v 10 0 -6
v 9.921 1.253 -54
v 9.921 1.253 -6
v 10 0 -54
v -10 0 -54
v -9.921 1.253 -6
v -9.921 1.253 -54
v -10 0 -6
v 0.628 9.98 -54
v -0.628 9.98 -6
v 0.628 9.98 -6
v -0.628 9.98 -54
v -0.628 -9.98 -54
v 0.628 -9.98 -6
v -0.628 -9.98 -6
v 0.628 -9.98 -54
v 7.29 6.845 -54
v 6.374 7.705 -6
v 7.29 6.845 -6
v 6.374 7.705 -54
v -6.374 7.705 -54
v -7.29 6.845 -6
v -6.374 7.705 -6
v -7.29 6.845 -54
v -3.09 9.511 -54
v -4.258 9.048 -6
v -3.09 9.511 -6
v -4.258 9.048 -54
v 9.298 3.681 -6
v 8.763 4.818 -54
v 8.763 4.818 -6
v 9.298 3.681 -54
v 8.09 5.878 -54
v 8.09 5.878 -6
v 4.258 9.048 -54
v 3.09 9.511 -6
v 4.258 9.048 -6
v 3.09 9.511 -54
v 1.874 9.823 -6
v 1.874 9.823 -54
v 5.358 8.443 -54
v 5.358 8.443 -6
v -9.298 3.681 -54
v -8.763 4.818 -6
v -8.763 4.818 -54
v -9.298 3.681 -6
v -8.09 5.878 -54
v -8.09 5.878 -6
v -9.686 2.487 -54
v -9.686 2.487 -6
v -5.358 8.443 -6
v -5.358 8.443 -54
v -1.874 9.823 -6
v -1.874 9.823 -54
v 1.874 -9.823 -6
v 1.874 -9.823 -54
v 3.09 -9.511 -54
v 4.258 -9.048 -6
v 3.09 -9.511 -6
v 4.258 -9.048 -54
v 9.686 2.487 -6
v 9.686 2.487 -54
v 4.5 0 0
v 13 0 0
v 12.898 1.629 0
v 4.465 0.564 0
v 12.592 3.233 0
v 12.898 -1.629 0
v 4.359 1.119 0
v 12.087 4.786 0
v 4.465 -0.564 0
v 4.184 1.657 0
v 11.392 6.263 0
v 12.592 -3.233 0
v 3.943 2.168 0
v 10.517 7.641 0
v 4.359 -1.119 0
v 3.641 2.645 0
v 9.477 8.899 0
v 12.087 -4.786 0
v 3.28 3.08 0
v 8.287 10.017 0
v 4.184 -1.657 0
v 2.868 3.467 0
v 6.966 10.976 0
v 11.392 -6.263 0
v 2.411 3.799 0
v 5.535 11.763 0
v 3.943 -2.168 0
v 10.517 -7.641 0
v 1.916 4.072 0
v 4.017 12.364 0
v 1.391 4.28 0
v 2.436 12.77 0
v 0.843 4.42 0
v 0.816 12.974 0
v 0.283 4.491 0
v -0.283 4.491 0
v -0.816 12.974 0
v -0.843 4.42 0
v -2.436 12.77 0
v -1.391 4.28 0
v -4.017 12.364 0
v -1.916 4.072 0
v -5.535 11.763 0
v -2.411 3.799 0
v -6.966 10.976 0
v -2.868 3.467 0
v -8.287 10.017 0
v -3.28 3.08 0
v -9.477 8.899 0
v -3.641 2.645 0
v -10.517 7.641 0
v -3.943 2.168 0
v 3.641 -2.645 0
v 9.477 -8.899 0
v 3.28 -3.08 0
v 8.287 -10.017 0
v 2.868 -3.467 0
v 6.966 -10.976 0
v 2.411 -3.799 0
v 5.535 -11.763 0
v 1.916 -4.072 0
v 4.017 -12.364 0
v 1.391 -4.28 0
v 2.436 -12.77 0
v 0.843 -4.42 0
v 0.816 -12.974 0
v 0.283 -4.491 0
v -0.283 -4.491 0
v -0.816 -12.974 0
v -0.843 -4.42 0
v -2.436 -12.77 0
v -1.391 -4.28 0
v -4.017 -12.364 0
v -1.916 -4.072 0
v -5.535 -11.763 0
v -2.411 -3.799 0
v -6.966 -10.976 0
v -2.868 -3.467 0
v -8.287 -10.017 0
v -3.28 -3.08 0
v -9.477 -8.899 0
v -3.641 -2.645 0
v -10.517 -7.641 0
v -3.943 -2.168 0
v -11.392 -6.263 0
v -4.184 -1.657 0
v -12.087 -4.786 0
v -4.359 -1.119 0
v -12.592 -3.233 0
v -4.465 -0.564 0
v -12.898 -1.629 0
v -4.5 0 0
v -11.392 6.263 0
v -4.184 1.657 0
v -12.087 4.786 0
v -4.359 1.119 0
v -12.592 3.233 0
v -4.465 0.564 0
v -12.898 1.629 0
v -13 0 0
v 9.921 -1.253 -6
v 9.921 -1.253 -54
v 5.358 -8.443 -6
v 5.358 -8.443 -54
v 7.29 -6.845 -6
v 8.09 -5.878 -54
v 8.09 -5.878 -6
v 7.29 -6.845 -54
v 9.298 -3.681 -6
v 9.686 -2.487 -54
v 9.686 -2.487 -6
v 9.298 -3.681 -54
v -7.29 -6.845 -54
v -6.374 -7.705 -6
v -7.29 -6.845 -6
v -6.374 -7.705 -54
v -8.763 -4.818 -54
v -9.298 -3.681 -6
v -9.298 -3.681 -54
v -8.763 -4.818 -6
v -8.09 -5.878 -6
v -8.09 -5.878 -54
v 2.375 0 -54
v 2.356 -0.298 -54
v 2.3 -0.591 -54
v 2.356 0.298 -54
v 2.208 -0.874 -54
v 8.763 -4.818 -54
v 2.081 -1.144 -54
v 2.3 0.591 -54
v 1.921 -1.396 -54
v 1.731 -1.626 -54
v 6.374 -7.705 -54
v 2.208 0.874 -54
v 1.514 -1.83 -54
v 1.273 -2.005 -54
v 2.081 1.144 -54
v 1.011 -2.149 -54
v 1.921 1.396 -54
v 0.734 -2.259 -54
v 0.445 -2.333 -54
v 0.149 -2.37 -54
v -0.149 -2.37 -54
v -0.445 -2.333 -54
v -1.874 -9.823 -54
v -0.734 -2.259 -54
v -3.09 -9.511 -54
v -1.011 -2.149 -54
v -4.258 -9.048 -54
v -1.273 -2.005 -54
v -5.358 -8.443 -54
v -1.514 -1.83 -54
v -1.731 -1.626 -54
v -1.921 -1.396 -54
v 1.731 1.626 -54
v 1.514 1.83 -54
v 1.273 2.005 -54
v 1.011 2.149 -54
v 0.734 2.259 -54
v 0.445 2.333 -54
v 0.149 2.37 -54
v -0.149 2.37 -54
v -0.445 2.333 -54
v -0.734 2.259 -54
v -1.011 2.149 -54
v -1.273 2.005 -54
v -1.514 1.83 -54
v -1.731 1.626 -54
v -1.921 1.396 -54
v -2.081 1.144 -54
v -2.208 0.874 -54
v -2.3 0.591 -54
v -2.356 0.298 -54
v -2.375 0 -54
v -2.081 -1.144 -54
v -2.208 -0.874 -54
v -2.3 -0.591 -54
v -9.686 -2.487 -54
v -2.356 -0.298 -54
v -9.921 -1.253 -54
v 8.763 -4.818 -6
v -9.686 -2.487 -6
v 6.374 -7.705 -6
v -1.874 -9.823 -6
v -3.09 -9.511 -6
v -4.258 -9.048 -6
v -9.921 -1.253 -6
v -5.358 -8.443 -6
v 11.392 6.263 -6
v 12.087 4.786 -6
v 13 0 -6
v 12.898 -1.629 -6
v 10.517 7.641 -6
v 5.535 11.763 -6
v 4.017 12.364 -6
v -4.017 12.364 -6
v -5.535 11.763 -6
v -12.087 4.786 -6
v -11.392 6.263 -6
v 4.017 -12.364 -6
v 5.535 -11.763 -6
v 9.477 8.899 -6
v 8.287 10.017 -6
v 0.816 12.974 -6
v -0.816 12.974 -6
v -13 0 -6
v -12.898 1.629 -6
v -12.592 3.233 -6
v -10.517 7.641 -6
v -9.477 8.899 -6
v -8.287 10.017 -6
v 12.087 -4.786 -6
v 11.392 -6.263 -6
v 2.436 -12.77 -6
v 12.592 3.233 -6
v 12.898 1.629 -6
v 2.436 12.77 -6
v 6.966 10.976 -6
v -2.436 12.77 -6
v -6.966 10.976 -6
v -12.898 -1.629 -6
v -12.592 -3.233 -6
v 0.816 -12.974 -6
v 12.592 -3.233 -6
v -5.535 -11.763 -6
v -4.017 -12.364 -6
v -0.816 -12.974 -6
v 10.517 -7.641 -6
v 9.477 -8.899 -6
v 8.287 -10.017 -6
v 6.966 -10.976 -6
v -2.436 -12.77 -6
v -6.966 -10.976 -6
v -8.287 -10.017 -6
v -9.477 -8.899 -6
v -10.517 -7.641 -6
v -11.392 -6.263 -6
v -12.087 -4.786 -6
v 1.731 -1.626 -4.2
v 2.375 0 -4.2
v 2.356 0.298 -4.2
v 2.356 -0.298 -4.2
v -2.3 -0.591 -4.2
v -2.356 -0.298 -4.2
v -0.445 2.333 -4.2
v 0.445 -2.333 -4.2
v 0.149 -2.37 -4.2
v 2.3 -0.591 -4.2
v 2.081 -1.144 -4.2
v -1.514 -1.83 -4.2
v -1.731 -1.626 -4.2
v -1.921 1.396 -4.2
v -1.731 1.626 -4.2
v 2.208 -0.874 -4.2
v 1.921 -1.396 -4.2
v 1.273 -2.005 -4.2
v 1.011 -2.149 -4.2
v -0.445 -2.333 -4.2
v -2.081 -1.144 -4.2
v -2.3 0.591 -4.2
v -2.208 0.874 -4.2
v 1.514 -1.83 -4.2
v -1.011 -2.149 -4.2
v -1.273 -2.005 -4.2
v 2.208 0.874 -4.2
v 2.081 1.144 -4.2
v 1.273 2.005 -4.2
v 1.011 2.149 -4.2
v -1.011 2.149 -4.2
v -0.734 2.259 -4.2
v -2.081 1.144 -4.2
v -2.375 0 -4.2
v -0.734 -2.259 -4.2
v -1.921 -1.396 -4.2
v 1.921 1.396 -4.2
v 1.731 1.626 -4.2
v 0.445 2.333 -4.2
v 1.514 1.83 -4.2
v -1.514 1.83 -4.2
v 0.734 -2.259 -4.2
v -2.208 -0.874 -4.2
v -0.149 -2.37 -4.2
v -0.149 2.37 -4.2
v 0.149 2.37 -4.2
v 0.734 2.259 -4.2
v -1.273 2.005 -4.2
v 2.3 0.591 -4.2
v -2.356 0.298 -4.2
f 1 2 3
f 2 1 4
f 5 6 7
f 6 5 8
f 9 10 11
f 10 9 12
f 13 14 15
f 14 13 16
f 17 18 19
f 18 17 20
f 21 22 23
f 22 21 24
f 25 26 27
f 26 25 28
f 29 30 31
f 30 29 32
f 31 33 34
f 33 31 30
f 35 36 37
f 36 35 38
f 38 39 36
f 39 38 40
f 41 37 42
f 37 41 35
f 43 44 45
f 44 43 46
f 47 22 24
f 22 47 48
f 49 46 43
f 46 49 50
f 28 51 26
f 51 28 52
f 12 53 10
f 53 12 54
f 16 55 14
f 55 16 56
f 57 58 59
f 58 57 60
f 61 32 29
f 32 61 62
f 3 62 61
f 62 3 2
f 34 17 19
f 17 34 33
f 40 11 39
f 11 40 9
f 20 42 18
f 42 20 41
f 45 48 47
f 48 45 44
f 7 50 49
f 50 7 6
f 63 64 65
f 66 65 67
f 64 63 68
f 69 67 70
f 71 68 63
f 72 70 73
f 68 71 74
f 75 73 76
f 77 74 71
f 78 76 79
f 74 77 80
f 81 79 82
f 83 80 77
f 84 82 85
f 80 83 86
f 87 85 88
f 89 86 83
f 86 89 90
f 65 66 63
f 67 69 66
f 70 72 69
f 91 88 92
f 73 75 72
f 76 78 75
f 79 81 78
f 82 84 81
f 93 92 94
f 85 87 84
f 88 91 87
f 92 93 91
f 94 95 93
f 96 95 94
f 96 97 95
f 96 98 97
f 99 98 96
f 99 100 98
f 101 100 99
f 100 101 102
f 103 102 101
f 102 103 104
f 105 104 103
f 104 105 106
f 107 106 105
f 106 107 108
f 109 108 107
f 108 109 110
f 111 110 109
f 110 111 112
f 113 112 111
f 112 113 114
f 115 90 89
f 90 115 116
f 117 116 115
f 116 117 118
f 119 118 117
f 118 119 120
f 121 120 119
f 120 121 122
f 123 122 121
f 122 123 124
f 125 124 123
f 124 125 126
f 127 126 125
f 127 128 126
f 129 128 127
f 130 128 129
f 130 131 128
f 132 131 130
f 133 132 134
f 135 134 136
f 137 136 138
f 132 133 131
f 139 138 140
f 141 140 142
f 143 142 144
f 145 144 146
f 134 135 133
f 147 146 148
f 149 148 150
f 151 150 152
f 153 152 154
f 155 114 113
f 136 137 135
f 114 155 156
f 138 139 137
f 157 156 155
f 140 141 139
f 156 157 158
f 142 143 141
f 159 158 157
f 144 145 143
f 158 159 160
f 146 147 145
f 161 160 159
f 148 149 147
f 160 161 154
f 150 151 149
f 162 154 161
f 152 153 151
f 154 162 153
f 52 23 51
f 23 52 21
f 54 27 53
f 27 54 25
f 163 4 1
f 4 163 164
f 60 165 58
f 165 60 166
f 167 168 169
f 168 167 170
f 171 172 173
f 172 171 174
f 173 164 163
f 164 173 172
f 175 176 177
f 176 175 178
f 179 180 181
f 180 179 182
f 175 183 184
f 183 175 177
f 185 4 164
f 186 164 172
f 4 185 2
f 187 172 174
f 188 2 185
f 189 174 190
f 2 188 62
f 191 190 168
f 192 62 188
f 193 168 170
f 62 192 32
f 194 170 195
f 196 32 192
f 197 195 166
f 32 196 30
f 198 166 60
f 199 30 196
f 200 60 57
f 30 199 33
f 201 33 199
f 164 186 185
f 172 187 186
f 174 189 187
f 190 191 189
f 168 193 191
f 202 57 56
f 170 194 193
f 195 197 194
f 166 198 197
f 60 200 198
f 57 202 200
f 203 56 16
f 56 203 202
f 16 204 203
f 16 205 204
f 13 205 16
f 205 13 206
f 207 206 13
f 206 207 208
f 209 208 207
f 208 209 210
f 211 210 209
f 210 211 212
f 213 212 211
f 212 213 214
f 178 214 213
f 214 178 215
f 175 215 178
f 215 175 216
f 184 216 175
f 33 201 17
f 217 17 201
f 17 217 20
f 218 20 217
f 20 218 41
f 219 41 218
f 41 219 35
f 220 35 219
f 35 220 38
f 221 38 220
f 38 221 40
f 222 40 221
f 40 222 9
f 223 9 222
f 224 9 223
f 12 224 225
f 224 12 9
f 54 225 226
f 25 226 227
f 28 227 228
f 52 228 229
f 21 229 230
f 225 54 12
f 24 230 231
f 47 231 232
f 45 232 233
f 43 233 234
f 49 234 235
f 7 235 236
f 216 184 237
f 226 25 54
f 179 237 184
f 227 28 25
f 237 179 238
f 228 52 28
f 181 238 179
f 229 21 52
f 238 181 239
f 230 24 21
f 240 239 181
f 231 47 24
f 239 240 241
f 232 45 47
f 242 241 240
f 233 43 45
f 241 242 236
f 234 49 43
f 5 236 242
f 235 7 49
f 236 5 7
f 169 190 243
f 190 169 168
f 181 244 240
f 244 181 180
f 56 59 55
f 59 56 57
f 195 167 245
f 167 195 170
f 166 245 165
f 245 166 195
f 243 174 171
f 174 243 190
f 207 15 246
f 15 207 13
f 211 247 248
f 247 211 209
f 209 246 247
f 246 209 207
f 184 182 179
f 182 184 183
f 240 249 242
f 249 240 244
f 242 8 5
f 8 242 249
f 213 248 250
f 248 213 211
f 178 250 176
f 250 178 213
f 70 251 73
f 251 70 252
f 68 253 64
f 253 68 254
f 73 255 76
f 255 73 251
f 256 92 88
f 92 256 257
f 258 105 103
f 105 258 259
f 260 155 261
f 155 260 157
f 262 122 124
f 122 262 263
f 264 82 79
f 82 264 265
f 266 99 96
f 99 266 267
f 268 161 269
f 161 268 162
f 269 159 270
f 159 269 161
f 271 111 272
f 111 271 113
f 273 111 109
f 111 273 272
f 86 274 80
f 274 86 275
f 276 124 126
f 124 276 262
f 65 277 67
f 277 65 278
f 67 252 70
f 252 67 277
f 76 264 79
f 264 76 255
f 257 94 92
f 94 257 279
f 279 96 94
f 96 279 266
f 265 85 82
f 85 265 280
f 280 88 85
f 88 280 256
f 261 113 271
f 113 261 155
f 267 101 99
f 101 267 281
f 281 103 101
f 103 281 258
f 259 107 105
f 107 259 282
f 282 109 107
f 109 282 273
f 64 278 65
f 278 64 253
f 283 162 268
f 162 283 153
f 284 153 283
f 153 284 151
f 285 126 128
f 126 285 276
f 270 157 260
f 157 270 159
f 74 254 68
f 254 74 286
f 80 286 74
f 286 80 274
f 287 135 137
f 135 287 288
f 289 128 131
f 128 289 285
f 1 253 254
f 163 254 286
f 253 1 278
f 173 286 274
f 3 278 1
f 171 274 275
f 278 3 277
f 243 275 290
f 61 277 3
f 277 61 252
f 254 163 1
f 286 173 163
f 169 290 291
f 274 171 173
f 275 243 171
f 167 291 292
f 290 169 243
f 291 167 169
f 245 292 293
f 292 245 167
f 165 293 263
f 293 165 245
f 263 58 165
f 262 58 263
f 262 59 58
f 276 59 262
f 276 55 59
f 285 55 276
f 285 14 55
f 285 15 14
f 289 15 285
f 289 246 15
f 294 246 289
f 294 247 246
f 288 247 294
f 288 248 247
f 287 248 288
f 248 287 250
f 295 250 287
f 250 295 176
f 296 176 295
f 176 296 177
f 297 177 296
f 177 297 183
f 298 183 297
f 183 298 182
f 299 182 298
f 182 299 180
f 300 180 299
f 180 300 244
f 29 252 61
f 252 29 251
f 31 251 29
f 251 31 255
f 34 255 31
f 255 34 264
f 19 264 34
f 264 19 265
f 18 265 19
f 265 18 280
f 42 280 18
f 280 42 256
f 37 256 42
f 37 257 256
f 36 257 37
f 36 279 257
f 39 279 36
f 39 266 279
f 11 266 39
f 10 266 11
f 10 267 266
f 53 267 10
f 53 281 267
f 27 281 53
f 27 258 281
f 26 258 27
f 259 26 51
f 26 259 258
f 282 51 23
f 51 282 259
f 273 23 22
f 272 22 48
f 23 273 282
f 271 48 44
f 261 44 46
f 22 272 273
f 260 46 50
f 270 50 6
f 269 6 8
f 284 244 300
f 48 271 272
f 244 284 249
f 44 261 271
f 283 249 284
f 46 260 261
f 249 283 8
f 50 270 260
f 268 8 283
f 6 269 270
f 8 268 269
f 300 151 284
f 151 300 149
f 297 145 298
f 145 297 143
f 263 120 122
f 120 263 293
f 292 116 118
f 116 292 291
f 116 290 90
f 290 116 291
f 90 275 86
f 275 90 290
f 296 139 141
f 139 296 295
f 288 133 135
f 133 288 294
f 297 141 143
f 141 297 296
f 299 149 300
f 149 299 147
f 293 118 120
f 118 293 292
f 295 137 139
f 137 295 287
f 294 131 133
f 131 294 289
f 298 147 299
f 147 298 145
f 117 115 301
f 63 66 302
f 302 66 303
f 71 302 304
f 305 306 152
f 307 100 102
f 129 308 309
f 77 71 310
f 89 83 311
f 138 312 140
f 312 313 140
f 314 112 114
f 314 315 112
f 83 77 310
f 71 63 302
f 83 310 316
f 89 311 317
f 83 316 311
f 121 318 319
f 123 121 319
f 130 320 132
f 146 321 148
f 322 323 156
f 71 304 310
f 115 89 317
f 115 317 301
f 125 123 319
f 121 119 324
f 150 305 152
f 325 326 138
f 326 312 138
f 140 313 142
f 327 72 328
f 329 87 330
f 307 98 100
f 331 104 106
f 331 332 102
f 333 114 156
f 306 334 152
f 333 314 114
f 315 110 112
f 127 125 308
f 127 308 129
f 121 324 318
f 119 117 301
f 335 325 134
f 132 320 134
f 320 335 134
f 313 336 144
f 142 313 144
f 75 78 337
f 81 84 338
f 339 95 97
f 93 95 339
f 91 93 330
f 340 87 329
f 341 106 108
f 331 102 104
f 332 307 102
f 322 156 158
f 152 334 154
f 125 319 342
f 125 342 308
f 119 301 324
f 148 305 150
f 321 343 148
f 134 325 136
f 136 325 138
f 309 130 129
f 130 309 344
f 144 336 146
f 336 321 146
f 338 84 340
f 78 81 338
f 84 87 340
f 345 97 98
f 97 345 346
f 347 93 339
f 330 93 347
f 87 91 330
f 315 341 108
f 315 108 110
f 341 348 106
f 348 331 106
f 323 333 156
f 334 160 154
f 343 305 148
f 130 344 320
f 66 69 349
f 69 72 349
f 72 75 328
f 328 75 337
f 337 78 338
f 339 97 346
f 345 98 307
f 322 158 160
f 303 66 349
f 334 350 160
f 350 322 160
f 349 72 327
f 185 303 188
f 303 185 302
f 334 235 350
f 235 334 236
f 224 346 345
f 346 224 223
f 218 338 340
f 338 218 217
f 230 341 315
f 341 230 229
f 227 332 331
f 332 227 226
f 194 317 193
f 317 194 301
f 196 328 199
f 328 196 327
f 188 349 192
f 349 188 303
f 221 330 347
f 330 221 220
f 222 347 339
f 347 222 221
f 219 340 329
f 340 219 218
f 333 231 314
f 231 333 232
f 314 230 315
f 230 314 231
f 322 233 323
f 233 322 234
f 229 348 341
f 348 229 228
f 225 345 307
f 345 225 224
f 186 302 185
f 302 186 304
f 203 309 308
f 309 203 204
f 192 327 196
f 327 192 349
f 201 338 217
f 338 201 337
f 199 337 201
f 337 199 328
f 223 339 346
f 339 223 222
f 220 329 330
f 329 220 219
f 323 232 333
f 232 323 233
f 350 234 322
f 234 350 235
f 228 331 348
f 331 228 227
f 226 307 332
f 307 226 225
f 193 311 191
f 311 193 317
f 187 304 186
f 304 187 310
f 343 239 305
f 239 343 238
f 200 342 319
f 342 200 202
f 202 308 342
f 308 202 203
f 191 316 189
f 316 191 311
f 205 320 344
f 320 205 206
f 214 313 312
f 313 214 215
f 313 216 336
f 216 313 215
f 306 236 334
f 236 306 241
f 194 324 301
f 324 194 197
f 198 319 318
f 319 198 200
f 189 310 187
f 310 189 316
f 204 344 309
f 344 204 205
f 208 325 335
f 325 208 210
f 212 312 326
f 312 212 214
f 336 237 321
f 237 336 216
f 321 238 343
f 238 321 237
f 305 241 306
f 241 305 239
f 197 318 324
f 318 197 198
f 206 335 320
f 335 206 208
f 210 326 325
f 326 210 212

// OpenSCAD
$fn = 50;


difference() {
	union() {
		translate(v = [0, 0, -54.0000000000]) {
			cylinder(h = 54, r = 10.0000000000);
		}
		translate(v = [0, 0, -6.0000000000]) {
			cylinder(h = 6, r = 13.0000000000);
		}
	}
	union() {
		translate(v = [0, 0, 0]) {
			rotate(a = [0, 0, 0]) {
				difference() {
					union() {
						#translate(v = [0, 0, -54.0000000000]) {
							cylinder(h = 54, r = 2.2500000000);
						}
						#translate(v = [0, 0, -4.2000000000]) {
							cylinder(h = 4.2000000000, r1 = 2.3750000000, r2 = 4.5000000000);
						}
						#translate(v = [0, 0, -54.0000000000]) {
							cylinder(h = 54, r = 2.3750000000);
						}
						#translate(v = [0, 0, -54.0000000000]) {
							cylinder(h = 54, r = 2.2500000000);
						}
					}
					union();
				}
			}
		}
	}
}
